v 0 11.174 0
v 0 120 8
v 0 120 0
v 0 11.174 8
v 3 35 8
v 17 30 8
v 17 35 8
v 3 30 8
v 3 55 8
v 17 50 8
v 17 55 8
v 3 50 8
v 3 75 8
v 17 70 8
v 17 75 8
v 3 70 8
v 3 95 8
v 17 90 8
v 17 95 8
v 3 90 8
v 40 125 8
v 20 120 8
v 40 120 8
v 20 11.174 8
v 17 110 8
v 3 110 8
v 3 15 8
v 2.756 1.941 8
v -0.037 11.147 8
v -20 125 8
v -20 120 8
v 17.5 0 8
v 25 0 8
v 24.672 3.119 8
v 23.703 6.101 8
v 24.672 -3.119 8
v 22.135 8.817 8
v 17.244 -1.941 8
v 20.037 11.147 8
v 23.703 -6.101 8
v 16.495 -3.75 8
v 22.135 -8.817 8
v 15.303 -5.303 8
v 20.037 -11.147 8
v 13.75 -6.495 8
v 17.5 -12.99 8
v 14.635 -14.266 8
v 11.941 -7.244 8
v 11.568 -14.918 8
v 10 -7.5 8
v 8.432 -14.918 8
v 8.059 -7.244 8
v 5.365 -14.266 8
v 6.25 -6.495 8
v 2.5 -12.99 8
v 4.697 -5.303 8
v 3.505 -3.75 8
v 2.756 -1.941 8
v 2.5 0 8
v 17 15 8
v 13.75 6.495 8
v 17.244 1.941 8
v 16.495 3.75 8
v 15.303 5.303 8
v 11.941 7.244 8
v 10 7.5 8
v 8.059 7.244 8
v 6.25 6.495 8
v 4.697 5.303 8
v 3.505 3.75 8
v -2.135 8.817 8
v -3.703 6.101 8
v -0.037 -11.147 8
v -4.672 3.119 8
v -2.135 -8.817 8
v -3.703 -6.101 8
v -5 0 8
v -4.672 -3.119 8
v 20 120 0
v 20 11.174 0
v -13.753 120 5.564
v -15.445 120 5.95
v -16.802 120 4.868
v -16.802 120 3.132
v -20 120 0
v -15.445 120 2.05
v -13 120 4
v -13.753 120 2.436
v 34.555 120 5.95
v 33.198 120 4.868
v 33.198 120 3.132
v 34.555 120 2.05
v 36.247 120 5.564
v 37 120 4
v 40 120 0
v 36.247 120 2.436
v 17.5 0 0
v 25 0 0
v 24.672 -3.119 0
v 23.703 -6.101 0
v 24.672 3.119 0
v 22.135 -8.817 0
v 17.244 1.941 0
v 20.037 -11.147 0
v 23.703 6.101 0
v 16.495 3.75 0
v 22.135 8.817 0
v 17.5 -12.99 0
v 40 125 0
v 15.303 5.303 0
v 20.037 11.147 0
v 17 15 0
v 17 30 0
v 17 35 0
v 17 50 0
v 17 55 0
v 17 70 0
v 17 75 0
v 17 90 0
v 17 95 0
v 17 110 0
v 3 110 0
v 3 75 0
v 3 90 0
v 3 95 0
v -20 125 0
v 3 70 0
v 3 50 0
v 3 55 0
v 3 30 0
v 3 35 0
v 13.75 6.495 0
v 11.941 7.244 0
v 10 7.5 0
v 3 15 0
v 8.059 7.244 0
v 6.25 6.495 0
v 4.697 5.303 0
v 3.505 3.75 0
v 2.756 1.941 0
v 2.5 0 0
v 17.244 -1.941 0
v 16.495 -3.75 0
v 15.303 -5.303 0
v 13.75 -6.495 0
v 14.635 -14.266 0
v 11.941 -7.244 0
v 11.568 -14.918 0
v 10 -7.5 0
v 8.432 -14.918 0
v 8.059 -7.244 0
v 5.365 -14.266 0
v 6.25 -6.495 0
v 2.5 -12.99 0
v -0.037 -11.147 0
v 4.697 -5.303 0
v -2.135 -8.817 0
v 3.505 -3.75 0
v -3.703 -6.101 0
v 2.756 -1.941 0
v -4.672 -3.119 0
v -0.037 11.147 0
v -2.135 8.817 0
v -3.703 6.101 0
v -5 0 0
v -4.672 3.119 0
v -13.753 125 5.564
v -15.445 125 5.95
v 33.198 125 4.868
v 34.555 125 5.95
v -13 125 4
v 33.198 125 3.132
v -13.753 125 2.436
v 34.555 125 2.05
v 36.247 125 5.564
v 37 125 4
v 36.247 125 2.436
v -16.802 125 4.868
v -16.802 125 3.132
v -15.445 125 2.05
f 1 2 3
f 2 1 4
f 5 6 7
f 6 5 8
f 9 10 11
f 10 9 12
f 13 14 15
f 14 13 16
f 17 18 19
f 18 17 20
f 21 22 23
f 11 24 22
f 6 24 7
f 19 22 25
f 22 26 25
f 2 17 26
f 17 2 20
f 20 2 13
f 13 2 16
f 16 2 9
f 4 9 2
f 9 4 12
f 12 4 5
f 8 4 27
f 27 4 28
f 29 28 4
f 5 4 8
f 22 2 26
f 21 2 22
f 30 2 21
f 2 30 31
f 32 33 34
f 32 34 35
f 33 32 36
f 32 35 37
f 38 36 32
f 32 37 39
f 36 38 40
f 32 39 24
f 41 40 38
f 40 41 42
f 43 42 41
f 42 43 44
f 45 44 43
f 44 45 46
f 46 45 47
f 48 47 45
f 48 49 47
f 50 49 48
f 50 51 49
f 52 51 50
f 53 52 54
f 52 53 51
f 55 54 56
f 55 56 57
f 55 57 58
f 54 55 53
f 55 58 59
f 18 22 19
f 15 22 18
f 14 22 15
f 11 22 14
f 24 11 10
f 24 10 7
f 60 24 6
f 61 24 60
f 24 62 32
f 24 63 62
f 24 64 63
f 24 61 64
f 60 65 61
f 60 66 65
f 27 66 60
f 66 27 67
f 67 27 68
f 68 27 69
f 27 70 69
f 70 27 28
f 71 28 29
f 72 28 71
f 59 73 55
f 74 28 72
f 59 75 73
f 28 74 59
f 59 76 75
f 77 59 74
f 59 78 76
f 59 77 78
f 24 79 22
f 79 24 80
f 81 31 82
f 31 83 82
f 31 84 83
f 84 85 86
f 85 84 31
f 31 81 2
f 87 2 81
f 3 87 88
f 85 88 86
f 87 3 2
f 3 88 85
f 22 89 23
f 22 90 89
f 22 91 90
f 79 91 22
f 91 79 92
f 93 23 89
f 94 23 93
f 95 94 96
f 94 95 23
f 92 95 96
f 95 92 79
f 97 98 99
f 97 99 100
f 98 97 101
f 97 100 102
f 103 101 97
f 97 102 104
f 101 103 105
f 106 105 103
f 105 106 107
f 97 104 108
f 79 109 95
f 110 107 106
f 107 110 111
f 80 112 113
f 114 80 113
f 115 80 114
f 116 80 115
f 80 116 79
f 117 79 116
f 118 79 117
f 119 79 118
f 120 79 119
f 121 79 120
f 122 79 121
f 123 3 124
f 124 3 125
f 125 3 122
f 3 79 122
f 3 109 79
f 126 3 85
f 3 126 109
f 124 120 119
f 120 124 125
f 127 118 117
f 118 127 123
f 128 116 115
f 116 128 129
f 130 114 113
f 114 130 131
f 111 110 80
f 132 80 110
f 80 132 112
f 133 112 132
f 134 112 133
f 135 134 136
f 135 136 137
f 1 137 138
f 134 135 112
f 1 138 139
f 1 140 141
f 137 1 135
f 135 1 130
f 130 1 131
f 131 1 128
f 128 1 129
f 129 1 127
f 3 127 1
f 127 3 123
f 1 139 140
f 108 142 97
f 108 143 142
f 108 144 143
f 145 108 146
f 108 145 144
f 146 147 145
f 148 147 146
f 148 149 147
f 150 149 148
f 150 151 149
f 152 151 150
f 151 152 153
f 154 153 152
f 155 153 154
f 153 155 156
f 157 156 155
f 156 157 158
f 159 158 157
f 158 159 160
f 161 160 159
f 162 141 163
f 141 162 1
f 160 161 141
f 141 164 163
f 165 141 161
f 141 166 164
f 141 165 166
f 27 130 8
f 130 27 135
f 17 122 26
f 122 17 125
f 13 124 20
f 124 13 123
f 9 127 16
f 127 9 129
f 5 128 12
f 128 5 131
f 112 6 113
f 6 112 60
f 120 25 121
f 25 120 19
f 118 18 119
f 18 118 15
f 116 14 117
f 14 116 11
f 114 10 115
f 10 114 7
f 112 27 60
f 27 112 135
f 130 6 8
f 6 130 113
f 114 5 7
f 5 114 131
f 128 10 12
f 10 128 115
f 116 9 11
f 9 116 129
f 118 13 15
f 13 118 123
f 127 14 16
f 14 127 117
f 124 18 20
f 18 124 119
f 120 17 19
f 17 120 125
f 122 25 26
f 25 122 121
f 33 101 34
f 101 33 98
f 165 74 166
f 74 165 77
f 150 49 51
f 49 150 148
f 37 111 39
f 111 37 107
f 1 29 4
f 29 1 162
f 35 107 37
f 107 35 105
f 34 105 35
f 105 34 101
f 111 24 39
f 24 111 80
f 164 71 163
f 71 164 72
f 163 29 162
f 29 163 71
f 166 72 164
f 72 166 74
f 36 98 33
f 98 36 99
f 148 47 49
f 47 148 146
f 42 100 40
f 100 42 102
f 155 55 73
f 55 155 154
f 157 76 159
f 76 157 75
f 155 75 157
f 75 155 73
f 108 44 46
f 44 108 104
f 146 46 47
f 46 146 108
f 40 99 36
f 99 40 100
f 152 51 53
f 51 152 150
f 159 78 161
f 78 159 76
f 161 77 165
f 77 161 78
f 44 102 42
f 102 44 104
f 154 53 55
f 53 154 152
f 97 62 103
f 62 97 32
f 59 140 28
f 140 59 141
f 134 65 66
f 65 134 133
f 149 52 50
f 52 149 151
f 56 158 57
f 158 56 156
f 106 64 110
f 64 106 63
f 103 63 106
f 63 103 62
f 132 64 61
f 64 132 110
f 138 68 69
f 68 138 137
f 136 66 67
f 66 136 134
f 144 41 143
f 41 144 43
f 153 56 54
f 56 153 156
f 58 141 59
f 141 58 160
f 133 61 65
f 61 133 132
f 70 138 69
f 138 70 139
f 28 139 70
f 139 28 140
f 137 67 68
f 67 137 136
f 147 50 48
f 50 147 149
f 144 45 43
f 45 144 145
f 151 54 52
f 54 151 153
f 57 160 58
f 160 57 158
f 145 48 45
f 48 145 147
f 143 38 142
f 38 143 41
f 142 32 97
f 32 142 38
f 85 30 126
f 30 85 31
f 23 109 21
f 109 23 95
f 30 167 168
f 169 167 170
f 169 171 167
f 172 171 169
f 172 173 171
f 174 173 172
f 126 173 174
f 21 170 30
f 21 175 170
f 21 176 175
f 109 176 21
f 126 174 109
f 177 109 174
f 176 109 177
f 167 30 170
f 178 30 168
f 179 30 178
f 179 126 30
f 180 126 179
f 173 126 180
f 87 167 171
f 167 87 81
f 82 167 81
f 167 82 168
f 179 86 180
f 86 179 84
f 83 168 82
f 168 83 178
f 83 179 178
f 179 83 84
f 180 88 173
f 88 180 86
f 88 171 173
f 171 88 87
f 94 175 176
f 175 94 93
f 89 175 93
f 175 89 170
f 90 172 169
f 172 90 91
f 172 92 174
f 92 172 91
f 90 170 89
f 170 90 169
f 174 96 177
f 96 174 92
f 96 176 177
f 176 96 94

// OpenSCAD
//square shaft
module squareShaft(){
    translate([0, 10, 0]){
        difference(){
            cube([20, 110, 8]);
            translate([3, 5, 0]){
                cube([14, 100, 8]);
            }
        }
        for (i=[0:1:5]){
            translate([0, (i * 20), 0]){
                cube([20, 5, 8]);
            }
        }
    }
}
//--square shaft

//top brace
module topBrace() {
    difference() {
        translate([-20, 120, 0]){
            cube([60, 5, 8]);
        }
        screwHole(offset = -15);
        screwHole(offset = 35);
    }
}

module screwHole(offset) {
    translate([offset, 125, 4]){
        rotate([90, 0, 0])
            cylinder(h = 5, d = 4, center = false);
    }
}


//--top brace

//roll hole
module rollHole() {
    translate([10, 0, 0]){
        difference() {
            cylinder(h = 8, d = 30, center = false);
            cylinder(h = 8, d = 15, center = false);
        }
    }


    //translate([4, -10, 0]){
      //  cube([15, 5, 8]);
    //}
}
//--roll hole

squareShaft();
topBrace();
rollHole();
